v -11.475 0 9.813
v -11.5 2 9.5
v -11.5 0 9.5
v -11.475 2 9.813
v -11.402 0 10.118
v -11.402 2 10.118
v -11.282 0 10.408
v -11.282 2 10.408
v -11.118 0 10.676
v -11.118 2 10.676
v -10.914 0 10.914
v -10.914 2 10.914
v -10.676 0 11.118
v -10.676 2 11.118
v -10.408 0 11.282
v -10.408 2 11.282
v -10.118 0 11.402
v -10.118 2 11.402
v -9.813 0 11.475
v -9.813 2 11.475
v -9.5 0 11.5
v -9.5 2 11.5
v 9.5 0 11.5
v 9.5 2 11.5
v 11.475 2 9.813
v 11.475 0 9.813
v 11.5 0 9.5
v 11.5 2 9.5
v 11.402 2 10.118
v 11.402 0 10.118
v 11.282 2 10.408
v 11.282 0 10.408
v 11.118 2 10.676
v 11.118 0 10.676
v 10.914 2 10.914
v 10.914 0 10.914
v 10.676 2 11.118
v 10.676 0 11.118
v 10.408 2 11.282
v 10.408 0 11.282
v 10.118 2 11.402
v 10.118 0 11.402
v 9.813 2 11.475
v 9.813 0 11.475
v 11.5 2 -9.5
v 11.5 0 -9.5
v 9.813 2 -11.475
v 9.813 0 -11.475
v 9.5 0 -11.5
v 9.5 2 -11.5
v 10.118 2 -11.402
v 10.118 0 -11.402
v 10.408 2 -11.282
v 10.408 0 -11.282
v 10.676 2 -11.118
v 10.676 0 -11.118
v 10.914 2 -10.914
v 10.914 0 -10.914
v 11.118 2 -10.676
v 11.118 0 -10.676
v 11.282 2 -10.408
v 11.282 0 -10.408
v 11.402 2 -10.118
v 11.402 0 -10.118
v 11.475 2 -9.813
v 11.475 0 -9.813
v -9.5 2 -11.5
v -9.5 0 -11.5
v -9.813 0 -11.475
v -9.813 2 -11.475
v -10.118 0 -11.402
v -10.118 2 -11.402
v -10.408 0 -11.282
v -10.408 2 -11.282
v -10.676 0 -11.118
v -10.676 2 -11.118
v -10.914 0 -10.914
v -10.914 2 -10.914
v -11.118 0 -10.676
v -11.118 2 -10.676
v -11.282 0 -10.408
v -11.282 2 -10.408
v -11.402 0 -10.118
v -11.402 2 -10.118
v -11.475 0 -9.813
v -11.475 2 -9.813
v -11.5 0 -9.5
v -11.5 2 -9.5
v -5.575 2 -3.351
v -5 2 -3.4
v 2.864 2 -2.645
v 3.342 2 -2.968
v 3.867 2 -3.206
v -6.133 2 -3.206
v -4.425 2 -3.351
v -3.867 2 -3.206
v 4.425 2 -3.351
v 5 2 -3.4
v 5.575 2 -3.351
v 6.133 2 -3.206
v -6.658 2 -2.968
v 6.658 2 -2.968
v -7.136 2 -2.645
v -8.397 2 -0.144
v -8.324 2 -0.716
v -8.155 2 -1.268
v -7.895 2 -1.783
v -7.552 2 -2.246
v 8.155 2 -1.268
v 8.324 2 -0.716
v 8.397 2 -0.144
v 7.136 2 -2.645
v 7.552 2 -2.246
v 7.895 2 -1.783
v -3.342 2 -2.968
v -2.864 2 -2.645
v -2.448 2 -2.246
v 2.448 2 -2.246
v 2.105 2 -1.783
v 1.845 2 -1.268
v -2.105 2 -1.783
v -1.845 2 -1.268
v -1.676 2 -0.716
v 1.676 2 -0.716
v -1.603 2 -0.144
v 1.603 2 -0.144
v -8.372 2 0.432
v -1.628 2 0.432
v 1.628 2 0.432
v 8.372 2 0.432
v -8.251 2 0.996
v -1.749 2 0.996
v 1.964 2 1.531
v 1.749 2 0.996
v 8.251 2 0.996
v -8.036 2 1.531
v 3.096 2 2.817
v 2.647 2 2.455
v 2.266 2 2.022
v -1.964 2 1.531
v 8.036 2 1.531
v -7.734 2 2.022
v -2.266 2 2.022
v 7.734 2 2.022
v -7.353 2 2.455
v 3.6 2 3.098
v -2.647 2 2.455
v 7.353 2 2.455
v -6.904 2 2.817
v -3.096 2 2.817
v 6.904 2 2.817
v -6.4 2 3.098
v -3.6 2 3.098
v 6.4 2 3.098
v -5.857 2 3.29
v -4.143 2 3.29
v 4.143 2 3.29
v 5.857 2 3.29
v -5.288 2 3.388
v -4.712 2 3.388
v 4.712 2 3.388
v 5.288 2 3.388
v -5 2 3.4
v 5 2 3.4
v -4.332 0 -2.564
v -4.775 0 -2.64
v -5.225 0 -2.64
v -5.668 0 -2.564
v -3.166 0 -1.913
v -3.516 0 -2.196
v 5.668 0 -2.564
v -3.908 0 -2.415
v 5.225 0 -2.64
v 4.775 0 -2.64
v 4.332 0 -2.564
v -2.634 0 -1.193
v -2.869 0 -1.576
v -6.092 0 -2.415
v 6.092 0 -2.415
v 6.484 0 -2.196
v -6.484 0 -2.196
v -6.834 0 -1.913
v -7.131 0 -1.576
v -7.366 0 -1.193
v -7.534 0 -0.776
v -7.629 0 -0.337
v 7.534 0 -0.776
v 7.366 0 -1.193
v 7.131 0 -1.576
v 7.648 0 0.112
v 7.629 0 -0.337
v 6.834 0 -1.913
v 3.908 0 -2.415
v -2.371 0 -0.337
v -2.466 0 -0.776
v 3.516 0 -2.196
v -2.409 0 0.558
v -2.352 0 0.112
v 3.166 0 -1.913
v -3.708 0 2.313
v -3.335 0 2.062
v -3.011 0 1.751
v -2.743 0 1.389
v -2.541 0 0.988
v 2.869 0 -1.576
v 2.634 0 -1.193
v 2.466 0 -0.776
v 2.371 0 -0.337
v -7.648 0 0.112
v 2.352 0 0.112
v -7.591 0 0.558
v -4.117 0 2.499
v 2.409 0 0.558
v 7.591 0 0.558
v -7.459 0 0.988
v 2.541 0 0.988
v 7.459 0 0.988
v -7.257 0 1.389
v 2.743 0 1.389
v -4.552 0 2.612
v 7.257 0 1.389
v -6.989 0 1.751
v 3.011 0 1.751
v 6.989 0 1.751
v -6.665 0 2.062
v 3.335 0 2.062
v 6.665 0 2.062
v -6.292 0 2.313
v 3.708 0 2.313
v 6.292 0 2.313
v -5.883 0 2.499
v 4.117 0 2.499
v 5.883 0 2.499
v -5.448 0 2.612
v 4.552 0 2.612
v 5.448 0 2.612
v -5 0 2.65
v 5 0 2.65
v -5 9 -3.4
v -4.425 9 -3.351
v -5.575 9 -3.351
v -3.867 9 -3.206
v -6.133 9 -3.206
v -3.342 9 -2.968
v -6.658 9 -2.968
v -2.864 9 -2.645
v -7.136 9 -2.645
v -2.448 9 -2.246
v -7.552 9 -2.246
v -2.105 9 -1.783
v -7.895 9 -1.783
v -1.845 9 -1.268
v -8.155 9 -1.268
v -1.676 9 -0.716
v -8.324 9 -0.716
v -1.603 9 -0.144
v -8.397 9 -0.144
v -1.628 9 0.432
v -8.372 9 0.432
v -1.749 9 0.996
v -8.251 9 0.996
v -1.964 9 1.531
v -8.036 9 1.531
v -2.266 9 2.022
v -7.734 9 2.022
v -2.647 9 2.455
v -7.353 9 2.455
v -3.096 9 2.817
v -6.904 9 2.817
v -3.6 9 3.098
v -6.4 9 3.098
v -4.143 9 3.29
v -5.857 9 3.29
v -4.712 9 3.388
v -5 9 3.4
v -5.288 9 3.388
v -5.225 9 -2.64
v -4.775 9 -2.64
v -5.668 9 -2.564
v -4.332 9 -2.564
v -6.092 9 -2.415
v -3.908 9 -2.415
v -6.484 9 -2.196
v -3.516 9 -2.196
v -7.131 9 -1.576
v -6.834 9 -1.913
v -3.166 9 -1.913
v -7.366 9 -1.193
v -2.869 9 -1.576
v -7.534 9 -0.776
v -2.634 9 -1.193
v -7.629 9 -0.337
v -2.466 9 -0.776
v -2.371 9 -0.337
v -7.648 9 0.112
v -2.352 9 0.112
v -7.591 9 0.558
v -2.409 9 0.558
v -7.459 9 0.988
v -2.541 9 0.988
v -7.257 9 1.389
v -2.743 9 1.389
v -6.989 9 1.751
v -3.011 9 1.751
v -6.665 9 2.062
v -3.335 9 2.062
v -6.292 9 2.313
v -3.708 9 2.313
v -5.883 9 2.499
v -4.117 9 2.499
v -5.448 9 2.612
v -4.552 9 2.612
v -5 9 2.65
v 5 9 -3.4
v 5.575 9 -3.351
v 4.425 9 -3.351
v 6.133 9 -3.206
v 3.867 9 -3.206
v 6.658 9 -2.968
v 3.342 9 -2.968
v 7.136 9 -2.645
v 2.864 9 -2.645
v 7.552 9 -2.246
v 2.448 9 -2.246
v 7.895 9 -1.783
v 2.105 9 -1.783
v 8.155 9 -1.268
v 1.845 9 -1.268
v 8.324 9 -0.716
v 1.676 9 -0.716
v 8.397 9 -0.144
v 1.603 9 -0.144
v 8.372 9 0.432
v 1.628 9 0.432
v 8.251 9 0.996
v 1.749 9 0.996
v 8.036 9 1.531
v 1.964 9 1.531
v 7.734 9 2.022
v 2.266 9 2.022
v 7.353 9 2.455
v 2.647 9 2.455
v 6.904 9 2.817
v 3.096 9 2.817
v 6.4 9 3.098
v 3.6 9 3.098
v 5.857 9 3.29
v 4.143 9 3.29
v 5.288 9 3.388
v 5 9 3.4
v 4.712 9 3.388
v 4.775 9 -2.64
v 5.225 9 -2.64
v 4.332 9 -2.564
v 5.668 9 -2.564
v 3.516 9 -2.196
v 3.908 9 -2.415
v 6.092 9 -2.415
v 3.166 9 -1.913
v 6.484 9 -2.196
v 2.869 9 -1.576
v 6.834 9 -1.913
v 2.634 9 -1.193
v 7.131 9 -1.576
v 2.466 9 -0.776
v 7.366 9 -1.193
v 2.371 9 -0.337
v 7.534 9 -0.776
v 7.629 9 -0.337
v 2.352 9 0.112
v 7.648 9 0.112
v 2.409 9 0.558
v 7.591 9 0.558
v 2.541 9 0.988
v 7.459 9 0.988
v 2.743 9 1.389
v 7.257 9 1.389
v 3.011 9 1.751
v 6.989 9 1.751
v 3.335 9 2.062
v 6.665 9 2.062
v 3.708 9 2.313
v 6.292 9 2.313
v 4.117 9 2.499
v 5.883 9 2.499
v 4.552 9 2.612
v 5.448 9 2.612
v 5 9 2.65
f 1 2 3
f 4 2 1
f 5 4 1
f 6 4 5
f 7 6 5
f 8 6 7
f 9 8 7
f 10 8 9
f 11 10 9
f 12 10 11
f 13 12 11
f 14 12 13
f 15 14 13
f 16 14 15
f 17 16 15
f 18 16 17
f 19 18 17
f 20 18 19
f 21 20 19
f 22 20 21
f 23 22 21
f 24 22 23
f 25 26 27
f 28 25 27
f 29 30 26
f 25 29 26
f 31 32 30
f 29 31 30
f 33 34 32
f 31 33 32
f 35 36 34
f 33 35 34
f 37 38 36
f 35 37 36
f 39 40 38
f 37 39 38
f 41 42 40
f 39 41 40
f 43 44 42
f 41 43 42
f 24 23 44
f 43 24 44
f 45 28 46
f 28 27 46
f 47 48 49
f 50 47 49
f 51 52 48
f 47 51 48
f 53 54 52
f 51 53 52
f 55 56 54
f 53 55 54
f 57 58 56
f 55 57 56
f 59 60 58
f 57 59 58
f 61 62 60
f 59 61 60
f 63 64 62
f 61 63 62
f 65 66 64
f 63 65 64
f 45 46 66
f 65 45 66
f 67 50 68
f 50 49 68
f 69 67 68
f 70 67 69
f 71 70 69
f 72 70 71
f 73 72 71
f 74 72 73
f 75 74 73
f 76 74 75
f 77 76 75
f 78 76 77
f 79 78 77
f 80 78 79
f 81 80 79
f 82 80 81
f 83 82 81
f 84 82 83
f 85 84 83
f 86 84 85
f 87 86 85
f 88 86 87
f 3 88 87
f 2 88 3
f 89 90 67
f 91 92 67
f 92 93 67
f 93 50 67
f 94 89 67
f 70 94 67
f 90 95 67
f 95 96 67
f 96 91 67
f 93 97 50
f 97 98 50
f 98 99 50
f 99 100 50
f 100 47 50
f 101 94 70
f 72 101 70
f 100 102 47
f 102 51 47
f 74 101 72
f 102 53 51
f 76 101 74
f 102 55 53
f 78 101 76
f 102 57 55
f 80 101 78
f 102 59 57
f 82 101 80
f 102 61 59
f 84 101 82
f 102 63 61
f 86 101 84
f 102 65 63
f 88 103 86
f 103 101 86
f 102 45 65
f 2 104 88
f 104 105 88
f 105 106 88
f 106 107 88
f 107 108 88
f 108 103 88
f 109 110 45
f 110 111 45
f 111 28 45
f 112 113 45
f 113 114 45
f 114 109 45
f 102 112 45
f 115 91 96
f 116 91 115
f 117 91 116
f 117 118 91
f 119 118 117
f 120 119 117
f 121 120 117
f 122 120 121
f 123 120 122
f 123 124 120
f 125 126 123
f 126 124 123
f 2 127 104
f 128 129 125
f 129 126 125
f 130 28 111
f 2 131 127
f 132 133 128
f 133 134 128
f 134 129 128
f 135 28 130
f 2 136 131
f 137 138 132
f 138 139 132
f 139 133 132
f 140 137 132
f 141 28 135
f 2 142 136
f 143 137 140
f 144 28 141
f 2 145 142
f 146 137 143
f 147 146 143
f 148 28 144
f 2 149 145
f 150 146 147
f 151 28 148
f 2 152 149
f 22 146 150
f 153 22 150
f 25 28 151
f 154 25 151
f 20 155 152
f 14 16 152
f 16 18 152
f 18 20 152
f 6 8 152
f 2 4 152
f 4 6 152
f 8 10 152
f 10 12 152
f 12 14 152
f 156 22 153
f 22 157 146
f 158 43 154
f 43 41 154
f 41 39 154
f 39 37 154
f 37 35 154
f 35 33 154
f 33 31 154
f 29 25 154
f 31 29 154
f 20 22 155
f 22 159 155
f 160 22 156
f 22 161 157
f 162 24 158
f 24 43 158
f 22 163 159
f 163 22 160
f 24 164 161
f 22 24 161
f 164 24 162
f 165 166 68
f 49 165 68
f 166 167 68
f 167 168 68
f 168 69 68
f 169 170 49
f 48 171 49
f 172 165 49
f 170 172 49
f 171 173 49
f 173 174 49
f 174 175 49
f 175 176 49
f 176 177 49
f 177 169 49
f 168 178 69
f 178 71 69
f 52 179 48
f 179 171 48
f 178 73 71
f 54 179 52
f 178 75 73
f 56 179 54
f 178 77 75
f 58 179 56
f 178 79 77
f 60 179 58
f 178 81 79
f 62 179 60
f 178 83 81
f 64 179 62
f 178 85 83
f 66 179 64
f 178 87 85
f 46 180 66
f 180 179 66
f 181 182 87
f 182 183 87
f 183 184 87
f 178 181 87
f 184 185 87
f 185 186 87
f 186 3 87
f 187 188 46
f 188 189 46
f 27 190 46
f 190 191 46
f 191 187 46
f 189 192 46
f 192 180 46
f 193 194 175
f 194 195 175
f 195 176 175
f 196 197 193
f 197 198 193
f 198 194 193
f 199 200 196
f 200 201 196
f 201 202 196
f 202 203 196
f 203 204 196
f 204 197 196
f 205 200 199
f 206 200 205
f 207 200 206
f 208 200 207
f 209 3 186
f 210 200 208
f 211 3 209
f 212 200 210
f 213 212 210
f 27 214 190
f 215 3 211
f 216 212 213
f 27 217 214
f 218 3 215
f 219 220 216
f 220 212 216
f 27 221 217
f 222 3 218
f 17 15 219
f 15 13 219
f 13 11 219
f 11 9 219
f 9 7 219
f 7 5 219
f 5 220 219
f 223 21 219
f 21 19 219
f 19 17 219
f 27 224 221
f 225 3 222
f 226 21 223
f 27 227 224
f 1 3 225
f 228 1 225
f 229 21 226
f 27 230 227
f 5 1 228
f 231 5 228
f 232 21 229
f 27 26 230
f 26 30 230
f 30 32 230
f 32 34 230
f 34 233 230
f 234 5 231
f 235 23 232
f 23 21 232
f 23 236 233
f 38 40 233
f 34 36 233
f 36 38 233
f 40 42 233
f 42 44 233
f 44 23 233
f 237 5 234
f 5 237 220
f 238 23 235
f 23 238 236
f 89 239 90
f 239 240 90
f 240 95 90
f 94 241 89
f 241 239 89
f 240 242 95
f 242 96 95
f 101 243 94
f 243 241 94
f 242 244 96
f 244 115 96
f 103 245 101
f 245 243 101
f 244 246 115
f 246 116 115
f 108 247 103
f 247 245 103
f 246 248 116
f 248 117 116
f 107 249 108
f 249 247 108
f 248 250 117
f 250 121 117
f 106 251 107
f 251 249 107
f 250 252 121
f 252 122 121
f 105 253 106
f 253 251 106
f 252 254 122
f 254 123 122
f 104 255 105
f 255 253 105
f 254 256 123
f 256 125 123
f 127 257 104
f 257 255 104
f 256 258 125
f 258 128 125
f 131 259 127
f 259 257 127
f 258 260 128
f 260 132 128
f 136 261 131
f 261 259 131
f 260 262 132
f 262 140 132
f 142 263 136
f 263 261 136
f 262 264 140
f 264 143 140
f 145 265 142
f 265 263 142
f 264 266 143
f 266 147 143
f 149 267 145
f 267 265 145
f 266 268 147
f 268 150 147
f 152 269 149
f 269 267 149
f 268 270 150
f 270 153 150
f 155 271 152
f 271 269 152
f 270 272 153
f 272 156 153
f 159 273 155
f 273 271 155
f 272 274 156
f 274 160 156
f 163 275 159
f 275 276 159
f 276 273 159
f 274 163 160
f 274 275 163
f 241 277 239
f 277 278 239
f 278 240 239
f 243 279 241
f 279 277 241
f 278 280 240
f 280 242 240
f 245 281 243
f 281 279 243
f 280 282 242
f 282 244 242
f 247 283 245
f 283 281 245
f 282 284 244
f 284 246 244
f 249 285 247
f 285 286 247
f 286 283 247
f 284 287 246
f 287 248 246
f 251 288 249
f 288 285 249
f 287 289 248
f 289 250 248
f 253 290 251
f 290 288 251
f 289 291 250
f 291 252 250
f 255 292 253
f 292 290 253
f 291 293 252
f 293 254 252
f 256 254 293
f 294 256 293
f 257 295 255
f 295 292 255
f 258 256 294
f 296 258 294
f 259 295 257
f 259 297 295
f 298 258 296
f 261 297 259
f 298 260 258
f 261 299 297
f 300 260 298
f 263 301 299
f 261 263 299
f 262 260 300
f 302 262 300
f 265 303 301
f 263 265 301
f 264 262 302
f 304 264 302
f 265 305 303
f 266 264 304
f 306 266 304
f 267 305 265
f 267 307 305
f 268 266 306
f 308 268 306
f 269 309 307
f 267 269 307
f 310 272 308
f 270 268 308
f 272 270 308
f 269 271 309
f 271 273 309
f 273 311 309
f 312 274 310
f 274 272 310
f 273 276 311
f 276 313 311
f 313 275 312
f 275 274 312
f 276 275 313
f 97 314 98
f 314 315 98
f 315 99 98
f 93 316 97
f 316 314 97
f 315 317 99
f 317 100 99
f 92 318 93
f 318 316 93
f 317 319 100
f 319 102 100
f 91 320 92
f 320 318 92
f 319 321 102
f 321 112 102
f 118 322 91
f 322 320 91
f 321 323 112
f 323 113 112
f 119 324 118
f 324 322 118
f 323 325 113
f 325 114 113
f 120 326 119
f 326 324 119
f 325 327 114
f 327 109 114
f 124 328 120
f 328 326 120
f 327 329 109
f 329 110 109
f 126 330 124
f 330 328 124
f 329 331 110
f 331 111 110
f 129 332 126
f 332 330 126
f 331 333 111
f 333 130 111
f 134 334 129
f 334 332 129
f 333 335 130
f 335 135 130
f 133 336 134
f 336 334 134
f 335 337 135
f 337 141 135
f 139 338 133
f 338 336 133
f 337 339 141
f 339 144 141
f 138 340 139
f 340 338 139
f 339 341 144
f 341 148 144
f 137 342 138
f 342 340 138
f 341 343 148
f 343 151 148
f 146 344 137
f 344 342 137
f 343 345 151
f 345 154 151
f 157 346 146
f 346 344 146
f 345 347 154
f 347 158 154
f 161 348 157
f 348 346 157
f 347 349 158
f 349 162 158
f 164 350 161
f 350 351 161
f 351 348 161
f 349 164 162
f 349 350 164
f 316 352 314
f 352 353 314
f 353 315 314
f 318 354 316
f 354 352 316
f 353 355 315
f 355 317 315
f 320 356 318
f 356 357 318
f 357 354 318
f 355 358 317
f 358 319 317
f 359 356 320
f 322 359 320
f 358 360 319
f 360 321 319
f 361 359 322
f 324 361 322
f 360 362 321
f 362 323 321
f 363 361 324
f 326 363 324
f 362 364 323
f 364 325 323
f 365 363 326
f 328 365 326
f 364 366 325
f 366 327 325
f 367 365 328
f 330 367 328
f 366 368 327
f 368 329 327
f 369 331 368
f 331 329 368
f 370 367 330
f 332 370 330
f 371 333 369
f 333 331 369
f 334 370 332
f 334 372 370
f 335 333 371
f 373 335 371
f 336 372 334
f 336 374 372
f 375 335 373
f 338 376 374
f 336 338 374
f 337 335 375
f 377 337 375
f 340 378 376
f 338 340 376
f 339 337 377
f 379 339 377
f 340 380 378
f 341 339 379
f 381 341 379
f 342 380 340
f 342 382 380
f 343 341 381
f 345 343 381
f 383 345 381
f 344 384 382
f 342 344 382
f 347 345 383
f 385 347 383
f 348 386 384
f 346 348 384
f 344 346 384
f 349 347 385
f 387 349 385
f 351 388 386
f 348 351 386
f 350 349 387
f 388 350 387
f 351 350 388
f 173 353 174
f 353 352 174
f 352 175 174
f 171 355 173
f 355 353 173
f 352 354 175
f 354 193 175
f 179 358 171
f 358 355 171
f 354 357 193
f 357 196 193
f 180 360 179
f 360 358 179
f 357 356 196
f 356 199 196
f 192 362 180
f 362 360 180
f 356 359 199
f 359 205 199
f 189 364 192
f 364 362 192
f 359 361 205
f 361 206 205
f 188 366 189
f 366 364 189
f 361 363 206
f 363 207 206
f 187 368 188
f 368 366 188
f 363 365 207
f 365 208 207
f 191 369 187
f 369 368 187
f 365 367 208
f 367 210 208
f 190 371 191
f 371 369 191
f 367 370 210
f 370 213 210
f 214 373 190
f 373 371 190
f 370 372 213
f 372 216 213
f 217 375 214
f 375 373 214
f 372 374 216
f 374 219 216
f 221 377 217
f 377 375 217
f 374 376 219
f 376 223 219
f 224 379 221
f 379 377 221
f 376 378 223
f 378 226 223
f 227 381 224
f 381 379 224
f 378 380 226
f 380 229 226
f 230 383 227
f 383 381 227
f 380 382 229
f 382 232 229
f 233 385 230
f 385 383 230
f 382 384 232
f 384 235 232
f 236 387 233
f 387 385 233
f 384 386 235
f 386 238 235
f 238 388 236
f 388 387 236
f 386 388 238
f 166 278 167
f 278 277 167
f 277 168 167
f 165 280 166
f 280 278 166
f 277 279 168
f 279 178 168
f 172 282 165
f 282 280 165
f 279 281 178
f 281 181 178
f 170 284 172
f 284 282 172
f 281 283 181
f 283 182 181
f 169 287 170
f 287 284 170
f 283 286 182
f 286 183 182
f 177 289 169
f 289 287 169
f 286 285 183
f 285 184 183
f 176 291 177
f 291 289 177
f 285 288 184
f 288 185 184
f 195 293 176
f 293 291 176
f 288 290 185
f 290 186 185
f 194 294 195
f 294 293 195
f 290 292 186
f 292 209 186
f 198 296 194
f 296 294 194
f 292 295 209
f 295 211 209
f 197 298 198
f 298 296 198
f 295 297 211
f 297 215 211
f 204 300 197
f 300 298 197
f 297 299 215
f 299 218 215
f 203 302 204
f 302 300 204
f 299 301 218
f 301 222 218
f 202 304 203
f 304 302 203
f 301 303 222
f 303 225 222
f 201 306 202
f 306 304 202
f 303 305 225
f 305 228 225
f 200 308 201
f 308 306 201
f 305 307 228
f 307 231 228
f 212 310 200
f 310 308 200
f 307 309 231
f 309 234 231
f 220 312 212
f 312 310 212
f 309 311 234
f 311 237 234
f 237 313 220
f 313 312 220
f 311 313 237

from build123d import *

# Parameters (mm, degrees)
BOSS_EXTRUDE1_DEPTH = 2
SKETCH2_R           = 3.4
BOSS_EXTRUDE2_DEPTH = 7
SKETCH3_R           = 2.65
CUT_EXTRUDE1_DEPTH  = 19.587630295


with BuildPart() as part:
    # Sketch1 → Boss-Extrude1 (new body)
    with BuildSketch(Plane(origin=(0, 0, 0), x_dir=(1, 0, 0), z_dir=(0, 1, 0))):
        with BuildLine():
            Line((-9.5, -11.5), (9.5, -11.5))
            ThreePointArc((9.5, -11.5), (10.914213562, -10.914213562), (11.5, -9.5))
            Line((11.5, -9.5), (11.5, 9.5))
            ThreePointArc((11.5, 9.5), (10.914213562, 10.914213562), (9.5, 11.5))
            Line((9.5, 11.5), (-9.5, 11.5))
            ThreePointArc((-9.5, 11.5), (-10.914213562, 10.914213562), (-11.5, 9.5))
            Line((-11.5, 9.5), (-11.5, -9.5))
            ThreePointArc((-11.5, -9.5), (-10.914213562, -10.914213562), (-9.5, -11.5))
        make_face()
    extrude(amount=BOSS_EXTRUDE1_DEPTH)

    # Sketch2 → Boss-Extrude2 (add)
    with BuildSketch(Plane(origin=(0, 2, 0), x_dir=(1, 0, 0), z_dir=(0, 1, 0))):
        with Locations(Location((-5, 0, 0), (0, 0, 270))):
            Circle(SKETCH2_R)
        with Locations(Location((5, 0, 0), (0, 0, 270))):
            Circle(SKETCH2_R)
    extrude(amount=BOSS_EXTRUDE2_DEPTH)

    # Sketch3 → Cut-Extrude1 (cut, through all)
    with BuildSketch(Plane(origin=(0, 9, 0), x_dir=(1, 0, 0), z_dir=(0, 1, 0))):
        with Locations(Location((-5, 0, 0), (0, 0, 270))):
            Circle(SKETCH3_R)
        with Locations(Location((5, 0, 0), (0, 0, 270))):
            Circle(SKETCH3_R)
    extrude(amount=-CUT_EXTRUDE1_DEPTH, mode=Mode.SUBTRACT)


solid = part.part
